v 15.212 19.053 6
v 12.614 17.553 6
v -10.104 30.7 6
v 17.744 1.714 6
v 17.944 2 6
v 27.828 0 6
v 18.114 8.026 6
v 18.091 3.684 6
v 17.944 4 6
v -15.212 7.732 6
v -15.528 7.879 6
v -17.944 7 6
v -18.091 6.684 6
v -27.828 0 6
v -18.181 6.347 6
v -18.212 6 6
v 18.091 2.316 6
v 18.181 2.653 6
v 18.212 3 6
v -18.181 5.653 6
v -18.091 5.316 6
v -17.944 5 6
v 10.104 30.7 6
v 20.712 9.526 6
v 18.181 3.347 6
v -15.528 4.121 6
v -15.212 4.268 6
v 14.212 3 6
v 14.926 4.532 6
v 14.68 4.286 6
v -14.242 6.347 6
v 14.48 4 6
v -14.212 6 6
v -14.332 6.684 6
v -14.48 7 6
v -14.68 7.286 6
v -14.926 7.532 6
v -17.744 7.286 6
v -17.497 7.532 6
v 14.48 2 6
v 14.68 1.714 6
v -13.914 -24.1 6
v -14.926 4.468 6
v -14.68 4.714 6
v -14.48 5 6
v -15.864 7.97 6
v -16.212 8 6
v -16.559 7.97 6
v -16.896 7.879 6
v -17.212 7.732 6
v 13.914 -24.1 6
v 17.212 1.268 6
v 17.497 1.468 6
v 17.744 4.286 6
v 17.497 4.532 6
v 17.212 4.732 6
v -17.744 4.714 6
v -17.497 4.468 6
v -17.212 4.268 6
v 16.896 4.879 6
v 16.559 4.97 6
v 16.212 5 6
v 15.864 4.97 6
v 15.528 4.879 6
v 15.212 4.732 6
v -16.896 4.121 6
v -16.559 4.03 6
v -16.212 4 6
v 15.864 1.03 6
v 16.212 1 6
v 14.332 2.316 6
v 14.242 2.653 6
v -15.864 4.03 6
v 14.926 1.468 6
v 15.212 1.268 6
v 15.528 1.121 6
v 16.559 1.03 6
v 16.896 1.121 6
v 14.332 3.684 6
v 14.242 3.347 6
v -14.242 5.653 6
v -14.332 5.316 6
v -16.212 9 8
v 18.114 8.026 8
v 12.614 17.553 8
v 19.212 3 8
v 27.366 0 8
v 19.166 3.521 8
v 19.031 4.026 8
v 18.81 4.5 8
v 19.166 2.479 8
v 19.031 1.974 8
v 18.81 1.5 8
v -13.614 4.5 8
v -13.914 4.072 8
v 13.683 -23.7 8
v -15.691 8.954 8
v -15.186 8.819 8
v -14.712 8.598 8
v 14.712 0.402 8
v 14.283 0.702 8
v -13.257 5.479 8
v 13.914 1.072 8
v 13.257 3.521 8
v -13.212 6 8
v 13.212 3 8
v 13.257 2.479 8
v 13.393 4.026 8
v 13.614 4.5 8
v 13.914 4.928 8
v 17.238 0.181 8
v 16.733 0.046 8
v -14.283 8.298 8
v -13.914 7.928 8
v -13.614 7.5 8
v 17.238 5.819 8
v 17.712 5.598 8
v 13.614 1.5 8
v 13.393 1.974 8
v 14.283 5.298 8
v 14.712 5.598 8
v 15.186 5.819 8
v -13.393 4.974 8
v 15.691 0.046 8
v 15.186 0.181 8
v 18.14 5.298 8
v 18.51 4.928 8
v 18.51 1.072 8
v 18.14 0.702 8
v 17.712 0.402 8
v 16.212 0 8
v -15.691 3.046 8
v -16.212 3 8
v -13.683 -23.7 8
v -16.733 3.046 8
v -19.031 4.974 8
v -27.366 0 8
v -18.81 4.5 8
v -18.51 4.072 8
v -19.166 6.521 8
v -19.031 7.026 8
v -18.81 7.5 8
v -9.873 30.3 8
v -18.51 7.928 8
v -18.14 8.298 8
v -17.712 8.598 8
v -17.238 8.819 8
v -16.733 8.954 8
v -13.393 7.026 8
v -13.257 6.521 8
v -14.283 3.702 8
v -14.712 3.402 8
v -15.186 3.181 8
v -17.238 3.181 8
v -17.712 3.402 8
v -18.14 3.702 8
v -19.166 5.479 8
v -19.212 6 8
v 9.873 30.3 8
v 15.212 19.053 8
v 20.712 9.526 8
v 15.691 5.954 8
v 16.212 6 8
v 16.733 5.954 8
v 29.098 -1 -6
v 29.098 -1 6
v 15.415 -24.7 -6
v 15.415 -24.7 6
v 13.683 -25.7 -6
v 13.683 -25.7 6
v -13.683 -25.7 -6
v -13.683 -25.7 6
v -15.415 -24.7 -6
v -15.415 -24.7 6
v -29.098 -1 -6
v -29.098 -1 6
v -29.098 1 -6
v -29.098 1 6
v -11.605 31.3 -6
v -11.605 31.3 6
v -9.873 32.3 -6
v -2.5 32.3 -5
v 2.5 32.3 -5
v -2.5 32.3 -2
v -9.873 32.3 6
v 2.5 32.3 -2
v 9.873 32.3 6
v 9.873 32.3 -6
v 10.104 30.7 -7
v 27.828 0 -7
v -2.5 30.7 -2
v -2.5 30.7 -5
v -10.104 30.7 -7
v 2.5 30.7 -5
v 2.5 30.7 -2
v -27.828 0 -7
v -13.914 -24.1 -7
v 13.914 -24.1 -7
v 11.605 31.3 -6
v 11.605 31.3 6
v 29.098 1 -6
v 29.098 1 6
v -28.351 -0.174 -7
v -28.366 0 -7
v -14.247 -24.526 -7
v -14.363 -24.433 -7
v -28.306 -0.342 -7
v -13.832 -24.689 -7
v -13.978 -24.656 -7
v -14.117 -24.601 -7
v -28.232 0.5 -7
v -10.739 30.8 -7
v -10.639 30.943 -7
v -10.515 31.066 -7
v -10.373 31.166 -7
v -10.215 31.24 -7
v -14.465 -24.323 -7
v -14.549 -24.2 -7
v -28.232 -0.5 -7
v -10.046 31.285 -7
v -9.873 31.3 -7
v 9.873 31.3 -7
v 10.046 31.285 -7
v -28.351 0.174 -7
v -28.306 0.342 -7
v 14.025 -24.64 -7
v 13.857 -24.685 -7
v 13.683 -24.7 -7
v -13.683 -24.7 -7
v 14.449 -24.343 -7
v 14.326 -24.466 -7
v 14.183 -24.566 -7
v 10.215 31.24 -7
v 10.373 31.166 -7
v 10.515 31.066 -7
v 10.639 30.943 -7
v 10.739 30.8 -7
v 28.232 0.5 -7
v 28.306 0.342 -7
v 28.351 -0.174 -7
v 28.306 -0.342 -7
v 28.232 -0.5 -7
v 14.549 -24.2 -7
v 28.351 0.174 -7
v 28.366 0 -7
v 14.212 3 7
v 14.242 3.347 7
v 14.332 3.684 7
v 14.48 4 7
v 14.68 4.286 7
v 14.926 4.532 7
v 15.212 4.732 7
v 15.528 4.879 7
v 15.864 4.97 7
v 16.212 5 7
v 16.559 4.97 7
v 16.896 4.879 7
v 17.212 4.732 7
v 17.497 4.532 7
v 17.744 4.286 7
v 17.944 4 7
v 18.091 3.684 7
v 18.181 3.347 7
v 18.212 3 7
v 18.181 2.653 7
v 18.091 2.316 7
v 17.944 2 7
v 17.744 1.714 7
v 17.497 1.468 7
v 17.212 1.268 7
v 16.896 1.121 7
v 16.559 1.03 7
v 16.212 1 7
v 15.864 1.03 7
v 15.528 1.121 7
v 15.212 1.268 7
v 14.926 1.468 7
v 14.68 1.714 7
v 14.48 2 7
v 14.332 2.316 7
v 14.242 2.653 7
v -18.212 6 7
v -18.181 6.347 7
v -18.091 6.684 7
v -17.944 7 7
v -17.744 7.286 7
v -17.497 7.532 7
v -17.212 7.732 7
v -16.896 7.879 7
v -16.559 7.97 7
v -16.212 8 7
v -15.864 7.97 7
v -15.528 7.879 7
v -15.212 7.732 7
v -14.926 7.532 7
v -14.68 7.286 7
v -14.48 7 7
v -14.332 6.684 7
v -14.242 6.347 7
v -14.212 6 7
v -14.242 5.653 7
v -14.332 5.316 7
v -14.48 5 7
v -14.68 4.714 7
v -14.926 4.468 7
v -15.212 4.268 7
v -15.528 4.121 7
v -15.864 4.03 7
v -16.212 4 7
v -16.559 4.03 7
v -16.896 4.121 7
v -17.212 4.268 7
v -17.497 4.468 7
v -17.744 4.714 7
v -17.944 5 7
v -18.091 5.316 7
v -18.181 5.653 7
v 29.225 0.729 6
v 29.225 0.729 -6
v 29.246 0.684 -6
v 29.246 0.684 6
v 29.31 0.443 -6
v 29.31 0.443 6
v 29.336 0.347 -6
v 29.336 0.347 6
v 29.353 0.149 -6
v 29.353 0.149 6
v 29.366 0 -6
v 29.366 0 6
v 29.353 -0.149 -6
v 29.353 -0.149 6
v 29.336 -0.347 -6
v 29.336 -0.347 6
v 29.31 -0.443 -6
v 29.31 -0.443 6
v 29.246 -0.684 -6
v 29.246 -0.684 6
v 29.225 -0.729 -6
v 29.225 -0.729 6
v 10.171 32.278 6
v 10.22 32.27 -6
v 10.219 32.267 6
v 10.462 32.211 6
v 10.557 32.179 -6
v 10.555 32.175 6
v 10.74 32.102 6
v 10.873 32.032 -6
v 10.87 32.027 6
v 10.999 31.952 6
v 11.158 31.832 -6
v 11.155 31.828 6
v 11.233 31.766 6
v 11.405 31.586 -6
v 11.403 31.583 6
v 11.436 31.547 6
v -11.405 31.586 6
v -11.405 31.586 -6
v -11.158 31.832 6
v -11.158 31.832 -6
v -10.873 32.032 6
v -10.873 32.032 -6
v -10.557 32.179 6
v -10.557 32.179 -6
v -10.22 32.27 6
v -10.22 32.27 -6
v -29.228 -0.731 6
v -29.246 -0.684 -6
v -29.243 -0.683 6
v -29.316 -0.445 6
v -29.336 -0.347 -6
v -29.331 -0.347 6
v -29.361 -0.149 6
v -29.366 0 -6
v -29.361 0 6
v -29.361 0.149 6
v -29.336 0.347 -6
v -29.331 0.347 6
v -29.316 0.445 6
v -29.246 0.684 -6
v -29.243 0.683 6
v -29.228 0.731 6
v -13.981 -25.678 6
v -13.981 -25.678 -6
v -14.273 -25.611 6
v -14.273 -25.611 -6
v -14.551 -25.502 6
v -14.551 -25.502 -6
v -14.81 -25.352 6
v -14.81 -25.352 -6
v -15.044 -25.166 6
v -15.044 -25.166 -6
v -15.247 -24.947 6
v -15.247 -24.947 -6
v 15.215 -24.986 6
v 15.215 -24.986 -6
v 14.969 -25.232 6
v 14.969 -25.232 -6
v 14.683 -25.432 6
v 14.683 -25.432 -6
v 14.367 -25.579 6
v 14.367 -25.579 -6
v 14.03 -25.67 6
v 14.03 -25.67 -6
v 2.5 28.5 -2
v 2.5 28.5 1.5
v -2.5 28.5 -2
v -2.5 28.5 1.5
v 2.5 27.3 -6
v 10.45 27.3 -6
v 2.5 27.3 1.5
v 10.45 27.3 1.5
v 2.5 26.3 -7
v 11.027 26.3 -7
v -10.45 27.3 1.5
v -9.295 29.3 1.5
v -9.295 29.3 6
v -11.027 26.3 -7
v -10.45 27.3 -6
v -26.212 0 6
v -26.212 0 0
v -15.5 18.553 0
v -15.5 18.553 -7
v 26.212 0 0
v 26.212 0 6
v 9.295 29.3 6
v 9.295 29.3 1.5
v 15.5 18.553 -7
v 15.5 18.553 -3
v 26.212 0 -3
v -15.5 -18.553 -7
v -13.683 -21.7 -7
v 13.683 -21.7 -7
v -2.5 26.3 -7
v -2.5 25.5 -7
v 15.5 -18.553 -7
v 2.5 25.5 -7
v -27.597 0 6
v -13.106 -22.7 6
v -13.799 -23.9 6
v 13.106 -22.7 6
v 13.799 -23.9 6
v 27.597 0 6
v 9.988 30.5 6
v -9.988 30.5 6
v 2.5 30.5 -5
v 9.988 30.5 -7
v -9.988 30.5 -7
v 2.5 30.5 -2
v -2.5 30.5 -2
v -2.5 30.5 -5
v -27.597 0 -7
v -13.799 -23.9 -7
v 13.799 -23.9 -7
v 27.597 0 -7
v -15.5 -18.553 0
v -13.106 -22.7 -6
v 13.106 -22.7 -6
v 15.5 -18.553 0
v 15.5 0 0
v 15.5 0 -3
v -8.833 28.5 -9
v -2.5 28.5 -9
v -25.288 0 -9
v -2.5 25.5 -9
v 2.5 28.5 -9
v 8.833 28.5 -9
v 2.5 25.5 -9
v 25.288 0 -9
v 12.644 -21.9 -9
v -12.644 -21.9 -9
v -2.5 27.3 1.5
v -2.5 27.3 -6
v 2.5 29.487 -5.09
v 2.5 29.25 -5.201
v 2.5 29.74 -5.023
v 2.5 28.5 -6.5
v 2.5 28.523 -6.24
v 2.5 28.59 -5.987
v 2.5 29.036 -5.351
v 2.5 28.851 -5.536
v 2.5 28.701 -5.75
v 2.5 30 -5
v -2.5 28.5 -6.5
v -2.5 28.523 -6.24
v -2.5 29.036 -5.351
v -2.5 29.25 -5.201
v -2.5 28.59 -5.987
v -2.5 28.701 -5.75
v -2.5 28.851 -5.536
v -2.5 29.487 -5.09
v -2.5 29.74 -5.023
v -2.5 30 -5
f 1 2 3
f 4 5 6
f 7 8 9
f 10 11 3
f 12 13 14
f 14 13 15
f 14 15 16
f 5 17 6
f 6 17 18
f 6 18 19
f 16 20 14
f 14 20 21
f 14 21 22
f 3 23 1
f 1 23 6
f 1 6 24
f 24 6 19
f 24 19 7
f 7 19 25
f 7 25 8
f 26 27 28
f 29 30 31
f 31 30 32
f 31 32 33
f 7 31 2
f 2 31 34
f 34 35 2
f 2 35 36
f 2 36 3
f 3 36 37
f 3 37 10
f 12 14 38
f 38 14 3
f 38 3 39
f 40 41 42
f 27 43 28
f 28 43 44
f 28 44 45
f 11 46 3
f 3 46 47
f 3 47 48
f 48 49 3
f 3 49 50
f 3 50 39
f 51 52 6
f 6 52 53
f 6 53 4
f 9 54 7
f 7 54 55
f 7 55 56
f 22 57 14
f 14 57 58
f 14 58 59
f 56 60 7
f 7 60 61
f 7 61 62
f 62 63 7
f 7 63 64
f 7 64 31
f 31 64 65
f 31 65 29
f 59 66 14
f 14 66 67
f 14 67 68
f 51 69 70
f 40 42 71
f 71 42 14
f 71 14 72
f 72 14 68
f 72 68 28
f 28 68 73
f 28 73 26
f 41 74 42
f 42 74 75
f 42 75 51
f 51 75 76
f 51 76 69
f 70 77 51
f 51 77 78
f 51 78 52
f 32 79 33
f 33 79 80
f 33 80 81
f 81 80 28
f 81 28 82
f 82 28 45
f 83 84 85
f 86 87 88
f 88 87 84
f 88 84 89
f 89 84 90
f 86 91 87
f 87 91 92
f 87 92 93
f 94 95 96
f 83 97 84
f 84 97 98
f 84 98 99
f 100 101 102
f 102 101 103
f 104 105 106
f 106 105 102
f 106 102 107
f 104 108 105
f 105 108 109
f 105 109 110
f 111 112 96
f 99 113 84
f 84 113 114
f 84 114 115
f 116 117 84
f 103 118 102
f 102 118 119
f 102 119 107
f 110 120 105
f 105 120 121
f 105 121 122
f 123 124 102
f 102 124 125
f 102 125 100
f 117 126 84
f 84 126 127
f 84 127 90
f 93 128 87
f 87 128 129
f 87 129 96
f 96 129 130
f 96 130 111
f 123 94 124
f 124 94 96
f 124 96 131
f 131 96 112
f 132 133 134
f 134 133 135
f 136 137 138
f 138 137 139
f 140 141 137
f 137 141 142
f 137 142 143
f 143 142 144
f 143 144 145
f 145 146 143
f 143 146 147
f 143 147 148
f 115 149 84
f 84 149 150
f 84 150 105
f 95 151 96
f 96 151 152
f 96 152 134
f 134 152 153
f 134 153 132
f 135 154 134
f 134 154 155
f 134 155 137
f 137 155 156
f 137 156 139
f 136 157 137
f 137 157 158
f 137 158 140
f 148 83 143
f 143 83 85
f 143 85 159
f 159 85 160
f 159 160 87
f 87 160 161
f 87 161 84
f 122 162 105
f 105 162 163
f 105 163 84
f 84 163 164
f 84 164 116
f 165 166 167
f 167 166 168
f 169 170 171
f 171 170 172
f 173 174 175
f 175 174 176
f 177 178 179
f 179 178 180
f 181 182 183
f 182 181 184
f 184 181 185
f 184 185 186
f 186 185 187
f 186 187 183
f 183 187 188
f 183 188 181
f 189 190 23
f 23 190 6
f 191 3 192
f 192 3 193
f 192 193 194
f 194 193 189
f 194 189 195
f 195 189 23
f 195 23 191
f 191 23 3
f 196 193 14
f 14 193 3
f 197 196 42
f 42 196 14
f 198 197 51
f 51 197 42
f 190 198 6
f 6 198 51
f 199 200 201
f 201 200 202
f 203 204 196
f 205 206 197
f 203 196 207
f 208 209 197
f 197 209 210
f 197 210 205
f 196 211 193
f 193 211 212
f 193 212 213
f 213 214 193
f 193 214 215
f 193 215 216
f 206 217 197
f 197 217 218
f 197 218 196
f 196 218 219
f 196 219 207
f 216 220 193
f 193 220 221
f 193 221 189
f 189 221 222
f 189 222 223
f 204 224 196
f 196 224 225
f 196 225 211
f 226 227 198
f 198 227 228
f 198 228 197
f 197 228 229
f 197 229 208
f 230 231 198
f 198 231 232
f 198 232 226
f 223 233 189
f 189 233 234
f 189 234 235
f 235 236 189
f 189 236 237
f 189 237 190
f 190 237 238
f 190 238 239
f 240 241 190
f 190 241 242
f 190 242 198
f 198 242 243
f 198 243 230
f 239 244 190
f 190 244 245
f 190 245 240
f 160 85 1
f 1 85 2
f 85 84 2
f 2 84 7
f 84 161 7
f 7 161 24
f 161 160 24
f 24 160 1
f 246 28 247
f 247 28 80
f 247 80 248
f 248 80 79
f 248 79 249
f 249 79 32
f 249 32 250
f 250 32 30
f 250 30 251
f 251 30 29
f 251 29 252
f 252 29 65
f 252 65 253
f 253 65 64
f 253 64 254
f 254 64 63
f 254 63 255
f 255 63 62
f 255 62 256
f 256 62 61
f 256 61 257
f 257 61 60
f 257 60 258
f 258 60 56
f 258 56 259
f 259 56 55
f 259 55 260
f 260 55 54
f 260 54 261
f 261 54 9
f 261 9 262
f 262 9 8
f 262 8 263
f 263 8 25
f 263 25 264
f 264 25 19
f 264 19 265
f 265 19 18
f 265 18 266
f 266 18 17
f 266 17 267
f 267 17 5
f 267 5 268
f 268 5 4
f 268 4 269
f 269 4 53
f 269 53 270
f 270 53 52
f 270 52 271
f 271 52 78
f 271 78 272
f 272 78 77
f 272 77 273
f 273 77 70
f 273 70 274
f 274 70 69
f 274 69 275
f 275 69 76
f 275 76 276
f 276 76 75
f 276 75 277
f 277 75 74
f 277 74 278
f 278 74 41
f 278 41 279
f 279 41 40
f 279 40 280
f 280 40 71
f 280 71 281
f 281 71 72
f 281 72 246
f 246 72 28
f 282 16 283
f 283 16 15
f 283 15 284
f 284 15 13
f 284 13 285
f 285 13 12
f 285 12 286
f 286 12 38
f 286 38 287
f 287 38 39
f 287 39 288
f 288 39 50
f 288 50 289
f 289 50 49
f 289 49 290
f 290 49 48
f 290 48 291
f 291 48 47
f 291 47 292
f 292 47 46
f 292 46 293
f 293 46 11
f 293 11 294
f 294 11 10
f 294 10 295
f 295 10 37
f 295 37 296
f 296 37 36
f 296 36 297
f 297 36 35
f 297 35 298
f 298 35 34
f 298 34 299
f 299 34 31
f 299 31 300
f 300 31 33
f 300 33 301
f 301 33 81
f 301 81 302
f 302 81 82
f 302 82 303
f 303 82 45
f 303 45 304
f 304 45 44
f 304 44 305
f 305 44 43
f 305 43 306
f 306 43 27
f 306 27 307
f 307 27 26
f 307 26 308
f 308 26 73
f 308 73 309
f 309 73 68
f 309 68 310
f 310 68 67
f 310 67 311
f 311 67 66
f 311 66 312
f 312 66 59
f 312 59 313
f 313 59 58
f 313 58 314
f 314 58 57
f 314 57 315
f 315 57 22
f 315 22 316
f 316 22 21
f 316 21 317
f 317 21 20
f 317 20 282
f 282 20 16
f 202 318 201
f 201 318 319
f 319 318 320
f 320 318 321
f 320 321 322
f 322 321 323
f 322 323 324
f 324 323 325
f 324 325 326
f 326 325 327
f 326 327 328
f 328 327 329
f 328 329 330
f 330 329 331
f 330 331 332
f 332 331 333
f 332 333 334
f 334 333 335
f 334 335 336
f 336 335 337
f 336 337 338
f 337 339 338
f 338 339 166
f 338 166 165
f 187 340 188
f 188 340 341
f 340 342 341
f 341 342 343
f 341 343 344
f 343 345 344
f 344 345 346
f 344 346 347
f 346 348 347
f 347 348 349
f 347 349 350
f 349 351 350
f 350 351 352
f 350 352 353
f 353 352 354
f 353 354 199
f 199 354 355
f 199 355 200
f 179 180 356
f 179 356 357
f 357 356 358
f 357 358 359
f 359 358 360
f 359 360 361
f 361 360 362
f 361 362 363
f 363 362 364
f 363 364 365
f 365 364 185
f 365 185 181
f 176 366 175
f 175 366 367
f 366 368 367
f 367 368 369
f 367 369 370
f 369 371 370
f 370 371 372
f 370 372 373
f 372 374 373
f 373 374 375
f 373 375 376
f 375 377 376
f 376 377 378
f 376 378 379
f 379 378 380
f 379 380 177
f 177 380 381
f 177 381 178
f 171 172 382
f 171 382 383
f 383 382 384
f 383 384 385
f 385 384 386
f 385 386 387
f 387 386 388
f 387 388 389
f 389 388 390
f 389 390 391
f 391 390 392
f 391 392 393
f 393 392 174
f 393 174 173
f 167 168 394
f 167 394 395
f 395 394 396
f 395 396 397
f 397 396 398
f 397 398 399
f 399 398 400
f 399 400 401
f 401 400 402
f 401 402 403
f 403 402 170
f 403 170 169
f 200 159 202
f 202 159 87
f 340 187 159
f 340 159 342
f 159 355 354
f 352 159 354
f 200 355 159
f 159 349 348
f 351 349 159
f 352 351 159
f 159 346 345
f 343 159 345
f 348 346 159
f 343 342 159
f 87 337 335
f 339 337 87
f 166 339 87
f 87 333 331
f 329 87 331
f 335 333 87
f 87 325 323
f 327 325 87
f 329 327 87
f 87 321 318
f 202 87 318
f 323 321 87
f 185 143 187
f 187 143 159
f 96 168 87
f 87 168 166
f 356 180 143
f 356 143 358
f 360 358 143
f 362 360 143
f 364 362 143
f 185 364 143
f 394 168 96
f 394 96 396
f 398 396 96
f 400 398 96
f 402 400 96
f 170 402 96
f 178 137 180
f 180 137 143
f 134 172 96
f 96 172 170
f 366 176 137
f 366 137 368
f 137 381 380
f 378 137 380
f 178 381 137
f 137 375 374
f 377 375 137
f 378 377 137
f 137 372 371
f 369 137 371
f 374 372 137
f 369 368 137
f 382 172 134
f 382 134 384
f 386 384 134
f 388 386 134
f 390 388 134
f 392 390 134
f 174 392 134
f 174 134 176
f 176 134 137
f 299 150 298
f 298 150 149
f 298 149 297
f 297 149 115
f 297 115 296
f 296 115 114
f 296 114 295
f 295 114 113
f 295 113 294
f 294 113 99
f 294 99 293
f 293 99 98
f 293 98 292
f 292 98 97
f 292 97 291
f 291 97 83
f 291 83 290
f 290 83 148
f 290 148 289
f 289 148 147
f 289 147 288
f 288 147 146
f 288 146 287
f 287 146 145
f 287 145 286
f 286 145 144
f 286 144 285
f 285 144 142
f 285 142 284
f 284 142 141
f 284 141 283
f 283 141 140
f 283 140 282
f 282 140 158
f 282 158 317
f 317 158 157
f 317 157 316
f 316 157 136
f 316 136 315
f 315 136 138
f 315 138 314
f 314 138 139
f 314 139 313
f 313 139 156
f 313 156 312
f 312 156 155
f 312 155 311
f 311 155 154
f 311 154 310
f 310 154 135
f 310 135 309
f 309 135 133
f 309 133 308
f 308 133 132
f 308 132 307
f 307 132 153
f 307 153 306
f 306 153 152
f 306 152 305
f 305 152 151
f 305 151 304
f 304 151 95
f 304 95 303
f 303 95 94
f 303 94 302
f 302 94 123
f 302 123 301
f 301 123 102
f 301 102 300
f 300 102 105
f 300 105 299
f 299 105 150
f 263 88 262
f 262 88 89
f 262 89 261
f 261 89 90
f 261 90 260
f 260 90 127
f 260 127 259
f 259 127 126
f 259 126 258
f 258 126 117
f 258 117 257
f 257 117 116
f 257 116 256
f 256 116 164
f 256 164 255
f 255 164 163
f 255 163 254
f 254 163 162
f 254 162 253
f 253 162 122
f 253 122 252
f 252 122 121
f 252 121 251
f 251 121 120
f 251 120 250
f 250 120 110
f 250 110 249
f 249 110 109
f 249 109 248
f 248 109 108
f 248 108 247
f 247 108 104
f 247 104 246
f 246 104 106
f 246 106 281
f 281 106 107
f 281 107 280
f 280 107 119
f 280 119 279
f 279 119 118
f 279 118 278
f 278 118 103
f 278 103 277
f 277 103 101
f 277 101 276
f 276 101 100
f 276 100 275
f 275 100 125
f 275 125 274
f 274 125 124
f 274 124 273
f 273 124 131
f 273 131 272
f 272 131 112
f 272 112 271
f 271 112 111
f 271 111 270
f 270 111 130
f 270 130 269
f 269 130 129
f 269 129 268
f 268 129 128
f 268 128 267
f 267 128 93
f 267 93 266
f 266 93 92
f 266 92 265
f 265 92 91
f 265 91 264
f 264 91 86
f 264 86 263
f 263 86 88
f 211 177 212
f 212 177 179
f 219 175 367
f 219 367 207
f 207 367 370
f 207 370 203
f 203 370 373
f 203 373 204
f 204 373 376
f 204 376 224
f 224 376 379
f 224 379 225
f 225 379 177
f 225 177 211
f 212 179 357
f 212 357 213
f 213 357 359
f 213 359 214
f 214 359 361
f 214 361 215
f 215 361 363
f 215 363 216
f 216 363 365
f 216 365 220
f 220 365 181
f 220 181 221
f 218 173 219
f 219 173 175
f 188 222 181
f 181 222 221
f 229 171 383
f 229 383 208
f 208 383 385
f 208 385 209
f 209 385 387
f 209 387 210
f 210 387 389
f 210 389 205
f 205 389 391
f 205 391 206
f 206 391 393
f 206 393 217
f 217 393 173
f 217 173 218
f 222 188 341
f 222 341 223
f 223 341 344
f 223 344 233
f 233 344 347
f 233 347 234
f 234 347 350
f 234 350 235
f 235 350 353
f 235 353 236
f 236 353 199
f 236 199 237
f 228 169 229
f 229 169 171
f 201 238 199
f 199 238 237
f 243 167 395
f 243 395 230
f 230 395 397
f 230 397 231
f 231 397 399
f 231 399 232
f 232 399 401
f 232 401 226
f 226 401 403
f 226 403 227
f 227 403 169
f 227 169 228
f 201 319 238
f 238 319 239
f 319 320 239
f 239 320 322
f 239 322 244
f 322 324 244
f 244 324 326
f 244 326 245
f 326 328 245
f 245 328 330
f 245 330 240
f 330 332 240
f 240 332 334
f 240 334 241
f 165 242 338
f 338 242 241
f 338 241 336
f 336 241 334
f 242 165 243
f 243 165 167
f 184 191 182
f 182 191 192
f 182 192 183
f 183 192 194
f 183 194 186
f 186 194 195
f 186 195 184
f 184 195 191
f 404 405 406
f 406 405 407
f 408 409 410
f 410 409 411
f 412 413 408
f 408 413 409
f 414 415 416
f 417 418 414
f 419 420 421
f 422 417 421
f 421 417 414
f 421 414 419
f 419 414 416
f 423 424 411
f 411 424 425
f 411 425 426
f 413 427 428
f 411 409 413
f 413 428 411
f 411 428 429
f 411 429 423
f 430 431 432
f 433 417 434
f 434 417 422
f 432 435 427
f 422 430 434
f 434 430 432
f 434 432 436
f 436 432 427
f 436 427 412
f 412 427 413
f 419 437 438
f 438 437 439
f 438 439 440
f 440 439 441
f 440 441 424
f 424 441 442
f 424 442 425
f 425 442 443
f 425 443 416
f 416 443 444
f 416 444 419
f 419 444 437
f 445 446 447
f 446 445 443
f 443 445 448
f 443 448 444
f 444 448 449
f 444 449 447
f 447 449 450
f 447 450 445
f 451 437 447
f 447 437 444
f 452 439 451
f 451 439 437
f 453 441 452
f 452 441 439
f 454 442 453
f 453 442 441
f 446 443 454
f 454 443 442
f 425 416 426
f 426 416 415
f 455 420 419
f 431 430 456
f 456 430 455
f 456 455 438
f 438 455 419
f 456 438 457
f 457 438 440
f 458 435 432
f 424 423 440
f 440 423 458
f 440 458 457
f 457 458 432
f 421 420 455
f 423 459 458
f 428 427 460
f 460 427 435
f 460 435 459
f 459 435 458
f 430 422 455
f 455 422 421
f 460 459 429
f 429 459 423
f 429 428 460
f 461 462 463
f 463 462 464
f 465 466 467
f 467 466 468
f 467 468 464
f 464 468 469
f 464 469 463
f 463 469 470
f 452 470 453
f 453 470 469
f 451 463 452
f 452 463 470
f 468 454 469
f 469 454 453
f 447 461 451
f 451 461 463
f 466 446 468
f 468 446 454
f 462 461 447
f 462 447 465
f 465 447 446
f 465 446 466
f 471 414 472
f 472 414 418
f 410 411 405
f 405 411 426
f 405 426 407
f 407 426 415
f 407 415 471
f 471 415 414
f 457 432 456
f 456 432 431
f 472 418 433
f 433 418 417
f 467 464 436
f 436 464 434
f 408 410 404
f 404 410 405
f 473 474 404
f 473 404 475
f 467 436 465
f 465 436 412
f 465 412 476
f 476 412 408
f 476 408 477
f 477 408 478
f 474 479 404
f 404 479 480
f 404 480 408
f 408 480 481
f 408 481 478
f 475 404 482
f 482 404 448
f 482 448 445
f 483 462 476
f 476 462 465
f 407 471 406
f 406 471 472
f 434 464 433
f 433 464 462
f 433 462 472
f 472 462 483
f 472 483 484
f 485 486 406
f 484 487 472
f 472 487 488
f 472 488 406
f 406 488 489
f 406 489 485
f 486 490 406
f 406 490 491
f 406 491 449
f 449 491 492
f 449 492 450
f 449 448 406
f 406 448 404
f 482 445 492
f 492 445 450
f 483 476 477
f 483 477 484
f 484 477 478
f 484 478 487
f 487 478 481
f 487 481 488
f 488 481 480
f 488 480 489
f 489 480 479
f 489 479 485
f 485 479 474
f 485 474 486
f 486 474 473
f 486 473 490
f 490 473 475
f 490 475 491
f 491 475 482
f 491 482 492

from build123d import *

# Parameters (mm, degrees)
BOSS_EXTRUDE1_DEPTH     = 6
BOSS_EXTRUDE2_DEPTH     = 7
CUT_EXTRUDE1_DEPTH      = 42.723654362
CUT_EXTRUDE1_DEPTH_BACK = 3
BOSS_EXTRUDE3_DEPTH     = 2
CHAMFER2_SIZE           = 2
BOSS_EXTRUDE4_DEPTH     = 8.5
BOSS_EXTRUDE5_DEPTH     = 13
BOSS_EXTRUDE6_DEPTH     = 2
SKETCH10_R              = 2
CUT_EXTRUDE2_DEPTH      = 47.356696747
FILLET2_R               = 2
CHAMFER3_SIZE           = 2
CHAMFER4_SIZE           = 1
CHAMFER5_SIZE           = 1
CUT_EXTRUDE3_START      = -10.5
SKETCH12_W              = 5
SKETCH12_H              = 3
CUT_EXTRUDE3_DEPTH      = 10.5
SKETCH13_W              = 5
SKETCH13_H              = 3
CUT_EXTRUDE4_DEPTH      = 3.8
SKETCH14_W              = 5
SKETCH14_H              = 3
CUT_EXTRUDE5_DEPTH      = 2
FILLET4_R               = 1.5


with BuildPart() as part:
    # Sketch1 → Boss-Extrude1 (new body)
    with BuildSketch(Plane.XY):
        Polygon((9.988159657, 30.5), (14.145081595, 23.3), (27.597342867, 0), (13.798671434, -23.9), (-13.798671434, -23.9), (-27.597342867, 0), (-14.145081595, 23.3), (-9.988159657, 30.5), align=None)
        Polygon((13.105851111, -22.7), (26.211702221, 0), (13.105851111, 22.7), (9.295339334, 29.3), (-9.295339334, 29.3), (-13.105851111, 22.7), (-26.211702221, 0), (-13.105851111, -22.7), align=None, mode=Mode.SUBTRACT)
    extrude(amount=BOSS_EXTRUDE1_DEPTH)

    # Sketch2 → Boss-Extrude2 (add)
    # profile 1 of 3: a face of its own
    with BuildSketch(Plane(origin=(0, 0, 0), x_dir=(-1, 0, 0), z_dir=(0, 0, -1))):
        Polygon((27.597342867, 0), (9.988159657, 30.5), (-9.988159657, 30.5), (-27.597342867, 0), (-13.798671434, -23.9), (13.798671434, -23.9), align=None)
        Polygon((-13.105851111, -22.7), (-26.211702221, 0), (-9.295339334, 29.3), (9.295339334, 29.3), (26.211702221, 0), (13.105851111, -22.7), align=None, mode=Mode.SUBTRACT)
    # profile 2 of 3: a face of its own
    with BuildSketch(Plane(origin=(0, 0, 0), x_dir=(-1, 0, 0), z_dir=(0, 0, -1))):
        Polygon((-15.5, -18.553212483), (-15.5, 18.553212483), (-26.211702221, 0), align=None)
    # profile 3 of 3: a face of its own
    with BuildSketch(Plane(origin=(0, 0, 0), x_dir=(-1, 0, 0), z_dir=(0, 0, -1))):
        Polygon((26.211702221, 0), (15.5, 18.553212483), (15.5, -18.553212483), align=None)
    extrude(amount=BOSS_EXTRUDE2_DEPTH)

    # Sketch4 → Cut-Extrude1 (cut, two sides: drawn at the far end of the back side and taken through both)
    with BuildSketch(Plane.XY.offset(-CUT_EXTRUDE1_DEPTH_BACK)):
        Polygon((15.5, 0), (26.211702221, 0), (15.5, 18.553212483), align=None)
    extrude(amount=CUT_EXTRUDE1_DEPTH + CUT_EXTRUDE1_DEPTH_BACK, mode=Mode.SUBTRACT)

    # Sketch6 → Boss-Extrude3 (add)
    with BuildSketch(Plane(origin=(0, 0, -7), x_dir=(-1, 0, 0), z_dir=(0, 0, -1))):
        Polygon((-27.597342867, 0), (-13.798671434, -23.9), (13.798671434, -23.9), (27.597342867, 0), (9.988159657, 30.5), (-9.988159657, 30.5), align=None)
    extrude(amount=BOSS_EXTRUDE3_DEPTH)

    # Chamfer2
    chamfer2_edges = [part.edges().sort_by_distance(p)[0] for p in [
        (18.792751262, 15.25, -9),
        (20.69800715, -11.95, -9),
        (0, -23.9, -9),
        (-20.69800715, -11.95, -9),
        (-18.792751262, 15.25, -9),
        (0, 30.5, -9),
    ]]
    chamfer(chamfer2_edges, length=CHAMFER2_SIZE)

    # Sketch7 → Boss-Extrude4 (add)
    with BuildSketch(Plane.XY.offset(-7)):
        Polygon((-10.450039872, 27.3), (10.450039872, 27.3), (9.295339334, 29.3), (-9.295339334, 29.3), align=None)
    extrude(amount=BOSS_EXTRUDE4_DEPTH)

    # Chamfer5
    chamfer5_edges = [part.edges().sort_by_distance(p)[0] for p in [
        (0, 27.3, -7),
        (0, -22.7, -7),
    ]]
    chamfer(chamfer5_edges, length=CHAMFER5_SIZE)

    # Sketch12 → Cut-Extrude3 (cut)
    with BuildSketch(Plane(origin=(0, 0, -9), x_dir=(-1, 0, 0), z_dir=(0, 0, -1)).offset(CUT_EXTRUDE3_START)):
        with Locations((0, 27)):
            Rectangle(SKETCH12_W, SKETCH12_H)
    extrude(amount=CUT_EXTRUDE3_DEPTH, mode=Mode.SUBTRACT)

    # Sketch14 → Cut-Extrude5 (cut)
    with BuildSketch(Plane(origin=(0, 30.5, 0), x_dir=(1, 0, 0), z_dir=(0, 1, 0))):
        with Locations((0, 3.5)):
            Rectangle(SKETCH14_W, SKETCH14_H)
    extrude(amount=-CUT_EXTRUDE5_DEPTH, mode=Mode.SUBTRACT)

    # Fillet4
    fillet4_edges = [part.edges().sort_by_distance(p)[0] for p in [
        (0, 28.5, -5),
    ]]
    fillet(fillet4_edges, radius=FILLET4_R)


with BuildPart() as body_2:
    # Sketch8 → Boss-Extrude5 (new body)
    with BuildSketch(Plane.XY.offset(6)):
        Polygon((14.837901918, -25.7), (29.675803836, 0), (11.027390142, 32.3), (-11.027390142, 32.3), (-29.675803836, 0), (-14.837901918, -25.7), align=None)
        Polygon((27.828282975, 0), (10.103629711, 30.7), (-10.103629711, 30.7), (-27.828282975, 0), (-13.914141487, -24.1), (13.914141487, -24.1), align=None, mode=Mode.SUBTRACT)
    extrude(amount=-BOSS_EXTRUDE5_DEPTH)

    # Sketch9 → Boss-Extrude6 (add)
    with BuildSketch(Plane.XY.offset(6)):
        Polygon((-29.675803836, 0), (-14.837901918, -25.7), (14.837901918, -25.7), (29.675803836, 0), (11.027390142, 32.3), (-11.027390142, 32.3), align=None)
    extrude(amount=BOSS_EXTRUDE6_DEPTH)

    # Sketch10 → Cut-Extrude2 (cut, through all)
    with BuildSketch(Plane.XY.offset(6)):
        with Locations((-16.211702221, 6)):
            Circle(SKETCH10_R)
        with Locations((16.211702221, 3)):
            Circle(SKETCH10_R)
        Polygon((18.11362601, 8.026279442), (20.711702221, 9.526279442), (15.211702221, 19.052558883), (12.61362601, 17.552558883), align=None)
    extrude(amount=CUT_EXTRUDE2_DEPTH, mode=Mode.SUBTRACT)

    # Fillet2
    fillet2_edges = [body_2.edges().sort_by_distance(p)[0] for p in [
        (14.837901918, -25.7, 0.5),
        (-14.837901918, -25.7, 0.5),
        (-29.675803836, 0, 0.5),
        (-11.027390142, 32.3, 0.5),
        (11.027390142, 32.3, 0.5),
        (29.675803836, 0, 0.5),
    ]]
    fillet(fillet2_edges, radius=FILLET2_R)

    # Chamfer3
    chamfer3_edges = [body_2.edges().sort_by_distance(p)[0] for p in [
        (22.256852877, -12.85, 8),
        (-20.351596989, 16.15, 8),
        (-22.256852877, -12.85, 8),
        (0, -25.7, 8),
        (20.351596989, 16.15, 8),
        (0, 32.3, 8),
        (14.68320138, -25.432050808, 8),
        (-14.68320138, -25.432050808, 8),
        (-29.36640276, 0, 8),
        (-10.872689603, 32.032050808, 8),
        (10.872689603, 32.032050808, 8),
        (29.36640276, 0, 8),
    ]]
    chamfer(chamfer3_edges, length=CHAMFER3_SIZE)

    # Chamfer4
    chamfer4_edges = [body_2.edges().sort_by_distance(p)[0] for p in [
        (-18.211702221, 6, 8),
        (14.211702221, 3, 8),
        (22.256852877, -12.85, -7),
        (20.351596989, 16.15, -7),
        (0, -25.7, -7),
        (-22.256852877, -12.85, -7),
        (-20.351596989, 16.15, -7),
        (0, 32.3, -7),
        (14.68320138, -25.432050808, -7),
        (-14.68320138, -25.432050808, -7),
        (-29.36640276, 0, -7),
        (-10.872689603, 32.032050808, -7),
        (10.872689603, 32.032050808, -7),
        (29.36640276, 0, -7),
    ]]
    chamfer(chamfer4_edges, length=CHAMFER4_SIZE)

    # Sketch13 → Cut-Extrude4 (cut)
    with BuildSketch(Plane(origin=(0, 32.3, 0), x_dir=(1, 0, 0), z_dir=(0, 1, 0))):
        with Locations((0, 3.5)):
            Rectangle(SKETCH13_W, SKETCH13_H)
    extrude(amount=-CUT_EXTRUDE4_DEPTH, mode=Mode.SUBTRACT)


solid = Compound([part.part, body_2.part])
